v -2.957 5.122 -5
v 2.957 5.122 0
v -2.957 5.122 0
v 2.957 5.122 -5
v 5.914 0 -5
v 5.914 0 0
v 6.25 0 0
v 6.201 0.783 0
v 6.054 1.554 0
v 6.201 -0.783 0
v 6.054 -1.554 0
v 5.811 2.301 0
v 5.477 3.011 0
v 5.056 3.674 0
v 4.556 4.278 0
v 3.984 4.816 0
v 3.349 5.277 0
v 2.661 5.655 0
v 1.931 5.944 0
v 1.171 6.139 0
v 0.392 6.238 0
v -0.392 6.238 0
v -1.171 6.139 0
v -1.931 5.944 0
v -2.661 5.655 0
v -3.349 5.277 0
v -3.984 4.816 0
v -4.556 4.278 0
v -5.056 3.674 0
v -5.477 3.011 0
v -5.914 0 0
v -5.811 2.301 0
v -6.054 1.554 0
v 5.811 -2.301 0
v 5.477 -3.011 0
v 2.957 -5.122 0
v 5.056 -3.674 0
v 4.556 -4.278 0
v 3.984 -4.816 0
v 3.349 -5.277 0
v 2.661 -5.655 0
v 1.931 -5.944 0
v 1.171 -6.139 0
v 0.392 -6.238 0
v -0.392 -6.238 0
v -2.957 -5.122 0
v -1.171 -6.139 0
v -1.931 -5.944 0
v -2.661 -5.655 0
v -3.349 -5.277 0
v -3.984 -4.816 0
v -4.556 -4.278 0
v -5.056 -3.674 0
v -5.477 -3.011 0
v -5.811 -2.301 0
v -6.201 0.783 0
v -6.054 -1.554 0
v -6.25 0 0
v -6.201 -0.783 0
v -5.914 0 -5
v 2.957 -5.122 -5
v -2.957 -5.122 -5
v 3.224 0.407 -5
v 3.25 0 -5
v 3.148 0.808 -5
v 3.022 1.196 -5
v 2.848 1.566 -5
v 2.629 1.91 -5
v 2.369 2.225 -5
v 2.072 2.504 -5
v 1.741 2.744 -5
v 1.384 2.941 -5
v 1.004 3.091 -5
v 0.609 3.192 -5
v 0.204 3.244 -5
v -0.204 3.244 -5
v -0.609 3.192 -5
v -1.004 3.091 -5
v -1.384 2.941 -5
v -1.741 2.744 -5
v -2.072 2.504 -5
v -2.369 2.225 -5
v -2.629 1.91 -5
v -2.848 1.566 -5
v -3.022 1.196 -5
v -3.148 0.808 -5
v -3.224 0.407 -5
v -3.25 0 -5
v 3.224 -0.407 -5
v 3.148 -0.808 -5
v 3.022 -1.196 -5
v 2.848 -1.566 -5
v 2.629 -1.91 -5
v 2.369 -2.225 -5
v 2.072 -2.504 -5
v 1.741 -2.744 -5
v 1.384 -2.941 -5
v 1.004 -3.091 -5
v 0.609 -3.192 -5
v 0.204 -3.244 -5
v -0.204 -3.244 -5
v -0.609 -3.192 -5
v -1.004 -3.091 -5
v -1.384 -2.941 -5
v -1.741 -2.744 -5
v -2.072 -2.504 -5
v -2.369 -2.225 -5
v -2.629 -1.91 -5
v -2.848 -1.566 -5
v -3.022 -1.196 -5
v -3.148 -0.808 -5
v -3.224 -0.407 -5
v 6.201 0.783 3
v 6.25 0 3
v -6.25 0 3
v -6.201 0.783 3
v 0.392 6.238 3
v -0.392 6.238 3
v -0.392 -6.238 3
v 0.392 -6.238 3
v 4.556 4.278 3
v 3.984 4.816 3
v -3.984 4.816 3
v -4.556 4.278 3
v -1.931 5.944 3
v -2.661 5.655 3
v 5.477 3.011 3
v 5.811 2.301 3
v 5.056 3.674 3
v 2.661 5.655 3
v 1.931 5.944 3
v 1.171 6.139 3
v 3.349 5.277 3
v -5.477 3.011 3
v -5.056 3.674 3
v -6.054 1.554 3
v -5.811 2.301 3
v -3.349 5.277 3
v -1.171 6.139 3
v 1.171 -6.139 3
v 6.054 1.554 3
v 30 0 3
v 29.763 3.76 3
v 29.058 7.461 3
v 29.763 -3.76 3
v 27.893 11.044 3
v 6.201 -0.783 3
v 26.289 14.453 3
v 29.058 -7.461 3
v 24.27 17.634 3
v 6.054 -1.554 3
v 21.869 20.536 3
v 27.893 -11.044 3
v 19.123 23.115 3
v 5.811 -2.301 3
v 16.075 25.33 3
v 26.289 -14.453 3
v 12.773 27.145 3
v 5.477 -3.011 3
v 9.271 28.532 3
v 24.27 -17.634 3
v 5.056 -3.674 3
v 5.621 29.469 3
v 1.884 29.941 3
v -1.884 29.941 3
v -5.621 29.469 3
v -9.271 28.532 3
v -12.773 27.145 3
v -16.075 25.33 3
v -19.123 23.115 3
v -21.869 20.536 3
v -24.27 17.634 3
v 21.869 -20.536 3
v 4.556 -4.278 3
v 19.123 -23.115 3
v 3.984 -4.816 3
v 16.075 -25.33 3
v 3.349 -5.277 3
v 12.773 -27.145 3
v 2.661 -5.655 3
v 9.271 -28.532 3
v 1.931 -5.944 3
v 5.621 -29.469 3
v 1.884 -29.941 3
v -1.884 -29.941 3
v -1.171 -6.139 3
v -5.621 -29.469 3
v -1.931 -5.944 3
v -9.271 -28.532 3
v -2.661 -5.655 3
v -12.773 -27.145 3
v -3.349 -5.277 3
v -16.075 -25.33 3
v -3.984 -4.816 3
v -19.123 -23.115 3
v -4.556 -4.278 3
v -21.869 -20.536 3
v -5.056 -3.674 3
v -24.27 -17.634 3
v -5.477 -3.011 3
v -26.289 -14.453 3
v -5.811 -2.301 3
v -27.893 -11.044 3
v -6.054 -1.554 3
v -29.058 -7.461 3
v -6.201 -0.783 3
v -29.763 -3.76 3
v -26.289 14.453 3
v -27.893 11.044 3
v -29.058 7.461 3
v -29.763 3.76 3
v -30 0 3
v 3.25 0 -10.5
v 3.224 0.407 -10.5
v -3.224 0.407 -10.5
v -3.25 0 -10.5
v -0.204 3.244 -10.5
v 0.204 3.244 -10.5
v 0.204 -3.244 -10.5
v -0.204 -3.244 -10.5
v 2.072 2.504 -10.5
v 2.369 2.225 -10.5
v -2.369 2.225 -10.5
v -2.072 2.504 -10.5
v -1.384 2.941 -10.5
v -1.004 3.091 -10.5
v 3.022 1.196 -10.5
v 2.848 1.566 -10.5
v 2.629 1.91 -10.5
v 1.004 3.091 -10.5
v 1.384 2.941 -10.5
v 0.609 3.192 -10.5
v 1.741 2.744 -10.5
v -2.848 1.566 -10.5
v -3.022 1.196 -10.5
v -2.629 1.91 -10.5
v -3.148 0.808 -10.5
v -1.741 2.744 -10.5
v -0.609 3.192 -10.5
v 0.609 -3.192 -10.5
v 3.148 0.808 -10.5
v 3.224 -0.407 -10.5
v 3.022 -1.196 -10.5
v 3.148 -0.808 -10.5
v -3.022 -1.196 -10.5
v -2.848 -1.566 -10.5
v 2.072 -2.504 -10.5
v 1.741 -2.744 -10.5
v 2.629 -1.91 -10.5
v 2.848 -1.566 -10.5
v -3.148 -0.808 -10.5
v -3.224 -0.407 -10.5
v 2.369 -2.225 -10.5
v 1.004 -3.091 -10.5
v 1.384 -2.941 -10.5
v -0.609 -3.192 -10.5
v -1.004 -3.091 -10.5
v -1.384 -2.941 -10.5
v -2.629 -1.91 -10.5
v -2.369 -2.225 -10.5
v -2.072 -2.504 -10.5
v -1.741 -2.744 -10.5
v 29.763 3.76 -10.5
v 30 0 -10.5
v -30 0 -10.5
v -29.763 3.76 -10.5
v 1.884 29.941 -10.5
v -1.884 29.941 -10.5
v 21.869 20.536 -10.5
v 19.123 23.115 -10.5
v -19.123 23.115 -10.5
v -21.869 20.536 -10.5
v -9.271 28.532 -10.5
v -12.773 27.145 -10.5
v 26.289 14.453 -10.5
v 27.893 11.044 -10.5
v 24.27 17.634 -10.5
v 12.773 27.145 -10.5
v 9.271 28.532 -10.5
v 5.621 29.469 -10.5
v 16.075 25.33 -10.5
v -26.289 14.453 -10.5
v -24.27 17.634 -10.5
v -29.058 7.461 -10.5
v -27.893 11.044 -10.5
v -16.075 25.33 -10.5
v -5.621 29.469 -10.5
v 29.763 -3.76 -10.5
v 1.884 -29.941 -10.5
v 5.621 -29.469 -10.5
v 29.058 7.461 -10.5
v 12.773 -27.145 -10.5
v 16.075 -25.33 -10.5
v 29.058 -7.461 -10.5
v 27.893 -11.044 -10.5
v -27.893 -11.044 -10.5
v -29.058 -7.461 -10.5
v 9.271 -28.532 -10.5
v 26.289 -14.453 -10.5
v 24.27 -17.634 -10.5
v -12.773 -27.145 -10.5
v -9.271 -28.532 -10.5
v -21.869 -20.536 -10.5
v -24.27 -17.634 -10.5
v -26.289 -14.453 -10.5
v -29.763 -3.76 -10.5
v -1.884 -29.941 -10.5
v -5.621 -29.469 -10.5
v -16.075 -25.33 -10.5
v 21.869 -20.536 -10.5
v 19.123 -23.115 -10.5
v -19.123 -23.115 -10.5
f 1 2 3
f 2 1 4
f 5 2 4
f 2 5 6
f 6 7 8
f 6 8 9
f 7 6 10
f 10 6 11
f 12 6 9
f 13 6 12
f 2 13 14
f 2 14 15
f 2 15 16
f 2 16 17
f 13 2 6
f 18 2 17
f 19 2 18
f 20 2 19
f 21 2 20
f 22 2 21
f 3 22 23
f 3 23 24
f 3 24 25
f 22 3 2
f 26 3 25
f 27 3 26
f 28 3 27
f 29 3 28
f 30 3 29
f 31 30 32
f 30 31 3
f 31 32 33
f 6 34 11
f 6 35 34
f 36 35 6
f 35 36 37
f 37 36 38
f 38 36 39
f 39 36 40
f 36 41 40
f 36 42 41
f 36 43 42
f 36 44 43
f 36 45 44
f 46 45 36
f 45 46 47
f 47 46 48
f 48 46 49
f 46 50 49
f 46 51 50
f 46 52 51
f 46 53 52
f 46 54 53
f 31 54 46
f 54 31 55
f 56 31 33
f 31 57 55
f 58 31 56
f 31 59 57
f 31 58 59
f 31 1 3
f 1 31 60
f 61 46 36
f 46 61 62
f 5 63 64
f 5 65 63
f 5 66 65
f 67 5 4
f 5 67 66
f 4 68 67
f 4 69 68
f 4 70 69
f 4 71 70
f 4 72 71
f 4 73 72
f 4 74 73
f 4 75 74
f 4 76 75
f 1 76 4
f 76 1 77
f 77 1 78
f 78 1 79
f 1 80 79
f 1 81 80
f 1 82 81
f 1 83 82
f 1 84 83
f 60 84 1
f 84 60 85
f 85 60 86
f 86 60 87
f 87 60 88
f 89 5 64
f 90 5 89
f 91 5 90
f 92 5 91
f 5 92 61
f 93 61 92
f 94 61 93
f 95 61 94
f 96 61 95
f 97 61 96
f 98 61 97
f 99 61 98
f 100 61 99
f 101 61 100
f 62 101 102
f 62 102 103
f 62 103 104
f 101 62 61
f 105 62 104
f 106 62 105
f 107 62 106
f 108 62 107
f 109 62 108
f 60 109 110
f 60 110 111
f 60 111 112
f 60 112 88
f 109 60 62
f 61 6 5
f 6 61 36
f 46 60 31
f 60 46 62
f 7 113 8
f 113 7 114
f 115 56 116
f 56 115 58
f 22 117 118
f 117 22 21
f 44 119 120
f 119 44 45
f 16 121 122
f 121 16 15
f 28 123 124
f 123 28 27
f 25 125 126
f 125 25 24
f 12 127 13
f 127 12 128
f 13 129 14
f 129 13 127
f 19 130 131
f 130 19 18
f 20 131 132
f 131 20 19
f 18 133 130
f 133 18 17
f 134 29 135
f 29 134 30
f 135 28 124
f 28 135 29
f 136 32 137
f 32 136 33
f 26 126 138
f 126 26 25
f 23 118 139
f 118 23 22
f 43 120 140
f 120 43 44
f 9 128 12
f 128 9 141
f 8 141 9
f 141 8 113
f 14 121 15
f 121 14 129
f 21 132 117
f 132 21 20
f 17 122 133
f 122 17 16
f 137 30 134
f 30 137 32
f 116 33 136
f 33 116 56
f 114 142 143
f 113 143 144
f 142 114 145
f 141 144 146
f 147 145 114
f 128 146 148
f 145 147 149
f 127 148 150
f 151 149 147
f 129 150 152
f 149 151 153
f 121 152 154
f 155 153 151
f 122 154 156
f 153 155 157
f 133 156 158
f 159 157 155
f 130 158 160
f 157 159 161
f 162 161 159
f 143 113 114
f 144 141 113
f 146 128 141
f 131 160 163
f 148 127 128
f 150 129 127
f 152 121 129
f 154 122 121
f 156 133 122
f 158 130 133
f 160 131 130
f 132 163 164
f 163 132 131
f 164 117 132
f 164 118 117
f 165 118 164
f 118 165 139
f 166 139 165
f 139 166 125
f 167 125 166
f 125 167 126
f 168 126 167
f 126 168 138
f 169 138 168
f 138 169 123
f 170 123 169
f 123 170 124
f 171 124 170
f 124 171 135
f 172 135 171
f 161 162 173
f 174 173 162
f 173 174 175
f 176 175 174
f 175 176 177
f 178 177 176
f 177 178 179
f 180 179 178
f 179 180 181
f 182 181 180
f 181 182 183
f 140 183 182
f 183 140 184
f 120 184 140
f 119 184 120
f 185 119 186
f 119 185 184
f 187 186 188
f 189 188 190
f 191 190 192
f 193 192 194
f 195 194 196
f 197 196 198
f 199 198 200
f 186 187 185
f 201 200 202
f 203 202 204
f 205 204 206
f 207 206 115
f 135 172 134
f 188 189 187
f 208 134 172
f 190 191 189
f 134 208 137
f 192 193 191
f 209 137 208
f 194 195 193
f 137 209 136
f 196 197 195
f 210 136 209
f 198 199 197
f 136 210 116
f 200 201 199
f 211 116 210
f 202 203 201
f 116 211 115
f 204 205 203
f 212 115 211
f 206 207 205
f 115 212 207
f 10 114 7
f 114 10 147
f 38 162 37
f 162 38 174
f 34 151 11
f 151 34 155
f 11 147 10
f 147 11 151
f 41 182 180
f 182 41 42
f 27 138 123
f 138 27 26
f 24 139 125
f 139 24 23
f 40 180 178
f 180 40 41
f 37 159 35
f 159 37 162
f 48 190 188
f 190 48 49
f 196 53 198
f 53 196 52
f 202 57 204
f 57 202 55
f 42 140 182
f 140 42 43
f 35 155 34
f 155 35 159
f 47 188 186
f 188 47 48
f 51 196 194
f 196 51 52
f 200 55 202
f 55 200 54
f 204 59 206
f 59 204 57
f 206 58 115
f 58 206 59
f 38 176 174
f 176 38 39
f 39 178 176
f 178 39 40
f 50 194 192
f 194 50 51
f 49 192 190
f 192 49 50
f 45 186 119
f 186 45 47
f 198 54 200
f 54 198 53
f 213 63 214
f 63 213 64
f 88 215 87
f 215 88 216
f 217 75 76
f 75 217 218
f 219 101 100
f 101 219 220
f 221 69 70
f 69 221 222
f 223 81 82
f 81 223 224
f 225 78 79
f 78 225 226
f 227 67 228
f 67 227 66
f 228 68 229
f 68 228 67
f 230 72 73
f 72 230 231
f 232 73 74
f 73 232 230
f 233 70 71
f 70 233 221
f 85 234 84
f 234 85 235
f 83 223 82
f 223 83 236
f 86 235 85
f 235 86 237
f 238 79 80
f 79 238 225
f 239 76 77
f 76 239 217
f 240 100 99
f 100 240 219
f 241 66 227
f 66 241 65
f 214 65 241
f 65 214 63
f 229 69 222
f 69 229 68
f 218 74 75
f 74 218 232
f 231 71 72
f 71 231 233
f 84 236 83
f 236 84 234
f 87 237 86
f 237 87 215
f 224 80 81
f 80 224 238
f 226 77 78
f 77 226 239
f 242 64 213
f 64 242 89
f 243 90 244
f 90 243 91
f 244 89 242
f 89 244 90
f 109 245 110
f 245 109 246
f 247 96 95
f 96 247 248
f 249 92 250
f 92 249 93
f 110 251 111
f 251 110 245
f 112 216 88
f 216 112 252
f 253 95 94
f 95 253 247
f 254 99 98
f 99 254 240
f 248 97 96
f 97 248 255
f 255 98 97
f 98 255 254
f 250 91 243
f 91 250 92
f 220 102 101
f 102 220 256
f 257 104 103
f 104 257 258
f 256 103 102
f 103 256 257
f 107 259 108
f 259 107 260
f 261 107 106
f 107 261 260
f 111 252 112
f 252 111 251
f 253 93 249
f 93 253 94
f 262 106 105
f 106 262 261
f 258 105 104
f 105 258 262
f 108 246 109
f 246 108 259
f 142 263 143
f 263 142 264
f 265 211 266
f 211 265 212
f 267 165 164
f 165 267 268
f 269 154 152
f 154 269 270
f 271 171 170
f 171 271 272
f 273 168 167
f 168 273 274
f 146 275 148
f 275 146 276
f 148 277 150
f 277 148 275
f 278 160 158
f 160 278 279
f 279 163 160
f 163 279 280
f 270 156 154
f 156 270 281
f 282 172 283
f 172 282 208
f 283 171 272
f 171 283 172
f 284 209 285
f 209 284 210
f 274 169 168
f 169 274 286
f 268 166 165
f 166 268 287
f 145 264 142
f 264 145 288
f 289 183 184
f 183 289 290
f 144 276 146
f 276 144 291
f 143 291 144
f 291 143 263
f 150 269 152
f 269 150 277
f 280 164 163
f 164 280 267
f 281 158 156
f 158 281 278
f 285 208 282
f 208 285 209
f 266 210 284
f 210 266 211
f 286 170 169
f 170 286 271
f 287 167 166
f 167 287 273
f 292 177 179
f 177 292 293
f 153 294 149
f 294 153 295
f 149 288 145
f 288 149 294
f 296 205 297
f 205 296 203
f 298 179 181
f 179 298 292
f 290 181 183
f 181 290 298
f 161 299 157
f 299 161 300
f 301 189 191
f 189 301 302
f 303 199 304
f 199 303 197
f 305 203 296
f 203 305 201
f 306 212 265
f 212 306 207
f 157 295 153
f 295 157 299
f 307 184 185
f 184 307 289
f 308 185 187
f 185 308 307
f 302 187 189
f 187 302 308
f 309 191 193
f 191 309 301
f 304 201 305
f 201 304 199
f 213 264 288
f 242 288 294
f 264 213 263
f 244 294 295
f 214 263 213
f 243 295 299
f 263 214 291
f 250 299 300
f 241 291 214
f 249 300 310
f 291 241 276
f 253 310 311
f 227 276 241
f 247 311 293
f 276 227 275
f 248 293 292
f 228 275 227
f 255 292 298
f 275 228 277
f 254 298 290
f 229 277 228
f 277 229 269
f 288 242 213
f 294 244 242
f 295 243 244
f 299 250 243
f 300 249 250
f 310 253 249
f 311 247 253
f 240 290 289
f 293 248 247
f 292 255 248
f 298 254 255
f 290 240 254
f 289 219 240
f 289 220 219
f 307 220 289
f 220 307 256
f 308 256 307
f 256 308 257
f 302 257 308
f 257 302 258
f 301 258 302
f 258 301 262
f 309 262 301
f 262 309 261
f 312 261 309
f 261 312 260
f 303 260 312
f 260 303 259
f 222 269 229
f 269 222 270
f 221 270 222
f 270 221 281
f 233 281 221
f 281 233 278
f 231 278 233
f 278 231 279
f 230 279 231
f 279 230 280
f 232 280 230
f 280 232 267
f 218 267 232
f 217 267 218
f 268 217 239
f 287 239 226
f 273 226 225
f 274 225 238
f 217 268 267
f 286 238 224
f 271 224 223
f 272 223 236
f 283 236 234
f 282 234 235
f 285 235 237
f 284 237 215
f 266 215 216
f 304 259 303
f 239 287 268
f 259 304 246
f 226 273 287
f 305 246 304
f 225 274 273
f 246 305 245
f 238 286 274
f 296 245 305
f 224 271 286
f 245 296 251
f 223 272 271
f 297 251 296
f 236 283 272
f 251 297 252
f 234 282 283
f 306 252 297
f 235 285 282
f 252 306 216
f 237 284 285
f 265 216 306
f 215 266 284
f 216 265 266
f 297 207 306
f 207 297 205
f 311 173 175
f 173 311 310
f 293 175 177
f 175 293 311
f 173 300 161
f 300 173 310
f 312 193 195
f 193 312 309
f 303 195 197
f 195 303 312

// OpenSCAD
$fn = 50;


difference() {
	union() {
		translate(v = [0, 0, -10.5000000000]) {
			cylinder(h = 13.5000000000, r = 30.0000000000);
		}
	}
	union() {
		translate(v = [0, 0, 0]) {
			rotate(a = [0, 0, 0]) {
				difference() {
					union() {
						translate(v = [0, 0, -5]) {
							linear_extrude(height = 5) {
								polygon(points = [[5.9142500000, 0.0000000000], [2.9571250000, 5.1218907443], [-2.9571250000, 5.1218907443], [-5.9142500000, 0.0000000000], [-2.9571250000, -5.1218907443], [2.9571250000, -5.1218907443]]);
							}
						}
					}
					union();
				}
			}
		}
		#cylinder(h = 3, r = 6.2500000000);
		#translate(v = [0, 0, -100.0000000000]) {
			cylinder(h = 200, r = 3.2500000000);
		}
	}
}
